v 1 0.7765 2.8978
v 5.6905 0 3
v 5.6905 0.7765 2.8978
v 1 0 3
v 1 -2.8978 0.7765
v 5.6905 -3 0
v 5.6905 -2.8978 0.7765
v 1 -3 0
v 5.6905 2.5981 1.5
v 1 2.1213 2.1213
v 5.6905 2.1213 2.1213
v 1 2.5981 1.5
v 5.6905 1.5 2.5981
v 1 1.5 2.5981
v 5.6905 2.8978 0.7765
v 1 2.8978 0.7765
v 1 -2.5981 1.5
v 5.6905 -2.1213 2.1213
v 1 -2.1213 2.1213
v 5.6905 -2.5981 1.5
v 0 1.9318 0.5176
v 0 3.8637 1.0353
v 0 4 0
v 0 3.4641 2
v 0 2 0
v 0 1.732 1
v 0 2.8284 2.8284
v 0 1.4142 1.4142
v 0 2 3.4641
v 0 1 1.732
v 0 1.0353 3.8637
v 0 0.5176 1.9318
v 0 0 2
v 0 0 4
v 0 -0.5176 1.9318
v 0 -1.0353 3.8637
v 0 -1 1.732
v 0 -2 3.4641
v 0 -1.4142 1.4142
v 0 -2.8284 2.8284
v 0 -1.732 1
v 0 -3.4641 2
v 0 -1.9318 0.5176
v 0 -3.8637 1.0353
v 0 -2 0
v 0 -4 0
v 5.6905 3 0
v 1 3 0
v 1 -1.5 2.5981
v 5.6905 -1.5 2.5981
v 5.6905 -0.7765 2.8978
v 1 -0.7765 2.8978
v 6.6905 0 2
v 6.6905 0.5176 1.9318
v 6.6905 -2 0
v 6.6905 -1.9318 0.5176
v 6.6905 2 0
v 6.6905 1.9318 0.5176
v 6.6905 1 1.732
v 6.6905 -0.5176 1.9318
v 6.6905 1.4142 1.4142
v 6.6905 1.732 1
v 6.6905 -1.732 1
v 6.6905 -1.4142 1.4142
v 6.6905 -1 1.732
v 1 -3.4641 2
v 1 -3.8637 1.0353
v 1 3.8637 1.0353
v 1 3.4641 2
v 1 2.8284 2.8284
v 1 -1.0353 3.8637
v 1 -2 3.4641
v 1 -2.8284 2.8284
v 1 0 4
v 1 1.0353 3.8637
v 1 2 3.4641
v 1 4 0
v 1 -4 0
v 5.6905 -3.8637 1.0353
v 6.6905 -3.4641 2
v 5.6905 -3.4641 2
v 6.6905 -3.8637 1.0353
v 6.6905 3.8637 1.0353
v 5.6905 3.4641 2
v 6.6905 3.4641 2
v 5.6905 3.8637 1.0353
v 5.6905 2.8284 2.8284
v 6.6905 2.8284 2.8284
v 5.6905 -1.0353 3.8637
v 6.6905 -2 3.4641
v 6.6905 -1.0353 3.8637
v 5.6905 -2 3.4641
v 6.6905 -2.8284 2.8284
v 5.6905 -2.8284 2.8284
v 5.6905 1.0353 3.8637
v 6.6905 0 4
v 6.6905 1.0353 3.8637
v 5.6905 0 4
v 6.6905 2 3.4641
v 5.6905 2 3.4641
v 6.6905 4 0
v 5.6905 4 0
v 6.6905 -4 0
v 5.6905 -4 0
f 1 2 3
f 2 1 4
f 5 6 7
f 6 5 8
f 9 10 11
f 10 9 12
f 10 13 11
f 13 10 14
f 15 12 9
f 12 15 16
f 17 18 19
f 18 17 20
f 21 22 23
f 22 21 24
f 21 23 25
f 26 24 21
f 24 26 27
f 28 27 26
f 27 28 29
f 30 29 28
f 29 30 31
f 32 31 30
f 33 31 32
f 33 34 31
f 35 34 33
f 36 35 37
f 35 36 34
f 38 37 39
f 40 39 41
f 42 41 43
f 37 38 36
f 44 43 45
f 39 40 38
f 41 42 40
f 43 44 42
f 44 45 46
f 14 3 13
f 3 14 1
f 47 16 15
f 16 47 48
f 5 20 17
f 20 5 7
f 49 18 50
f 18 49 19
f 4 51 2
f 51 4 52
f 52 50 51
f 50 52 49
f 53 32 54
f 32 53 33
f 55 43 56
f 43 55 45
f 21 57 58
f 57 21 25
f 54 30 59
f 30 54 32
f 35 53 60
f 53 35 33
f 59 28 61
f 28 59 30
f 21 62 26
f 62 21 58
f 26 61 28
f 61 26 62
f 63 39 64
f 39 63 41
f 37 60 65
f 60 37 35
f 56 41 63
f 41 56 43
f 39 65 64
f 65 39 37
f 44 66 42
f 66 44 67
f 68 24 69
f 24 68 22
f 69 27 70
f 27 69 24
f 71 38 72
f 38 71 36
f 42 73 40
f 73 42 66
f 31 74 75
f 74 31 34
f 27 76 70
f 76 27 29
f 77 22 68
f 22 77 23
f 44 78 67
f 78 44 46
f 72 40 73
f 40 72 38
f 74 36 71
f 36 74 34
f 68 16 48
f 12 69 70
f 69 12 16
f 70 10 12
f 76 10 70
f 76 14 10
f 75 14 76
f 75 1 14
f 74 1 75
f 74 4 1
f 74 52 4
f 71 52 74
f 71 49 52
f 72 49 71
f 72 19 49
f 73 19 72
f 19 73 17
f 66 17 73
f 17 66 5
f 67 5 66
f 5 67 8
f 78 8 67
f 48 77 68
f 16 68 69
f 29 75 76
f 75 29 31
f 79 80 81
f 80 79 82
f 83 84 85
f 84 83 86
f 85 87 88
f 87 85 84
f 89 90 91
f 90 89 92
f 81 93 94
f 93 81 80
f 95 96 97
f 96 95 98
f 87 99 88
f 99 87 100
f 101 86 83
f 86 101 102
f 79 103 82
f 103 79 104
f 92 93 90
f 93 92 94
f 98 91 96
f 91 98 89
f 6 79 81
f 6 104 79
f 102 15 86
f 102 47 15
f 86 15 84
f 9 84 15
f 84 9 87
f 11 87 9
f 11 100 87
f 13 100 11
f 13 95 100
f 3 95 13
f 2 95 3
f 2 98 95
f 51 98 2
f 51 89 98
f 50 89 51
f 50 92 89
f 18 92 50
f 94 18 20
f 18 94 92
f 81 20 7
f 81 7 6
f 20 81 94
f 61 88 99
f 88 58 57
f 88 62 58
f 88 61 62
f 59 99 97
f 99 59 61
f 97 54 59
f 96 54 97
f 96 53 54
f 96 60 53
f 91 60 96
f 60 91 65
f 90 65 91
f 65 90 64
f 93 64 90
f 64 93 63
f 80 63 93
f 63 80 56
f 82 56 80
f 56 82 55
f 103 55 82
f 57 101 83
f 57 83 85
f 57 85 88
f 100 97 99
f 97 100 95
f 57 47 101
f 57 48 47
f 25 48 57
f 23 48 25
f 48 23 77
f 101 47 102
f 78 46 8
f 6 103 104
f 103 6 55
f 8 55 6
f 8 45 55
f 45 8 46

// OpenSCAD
// file: ../build_environments.scad
// build_environments.scad: modules to build level sections
//

module pool(diameter=10.0, wall_height=2.0, step_width=3.0, connections=[])
{
    difference() {
        union() {
        difference() {
            cylinder(h=0.5,r1=diameter+step_width,r2=diameter+step_width,$fn=48);
            translate([0,0,-0.1])
                cylinder(h=0.7,r1=diameter,r2=diameter,$fn=48);
        }
        difference() {
            cylinder(h=wall_height,r1=diameter+step_width+1.0,r2=diameter+step_width+1.0,$fn=48);
            translate([0,0,-0.1])
                cylinder(h=wall_height+0.2,r1=diameter+step_width,r2=diameter+step_width,$fn=48);
        }
        }
    
        for (c = connections)
        {
            rotate([0,90,0]) {
                angle = atan2(c[1],c[0]);
                rotate([-angle,0,0]) {
                    cylinder(h=diameter+5.0,r1=c[2],r2=c[2],$fn=48);
                }
            }
        }
    }
}

module straight(length=10.0, width=2.0, dy1=0.0, dy2=0.0, dz=0.0)
{
    dims = [0, 0, 0, 0, 0, (dz/length)];
    matrix = [
        [ 1, dims[0], dims[1], 0 ],
        [ dims[2], 1, dims[4], 0 ],
        [ dims[5], dims[3], 1, 0 ],
        [ 0, 0, 0, 1 ]
    ];
    multmatrix(matrix)
    difference() {
        translate([dy1,0,0])
        union() {
            rotate([0,90,0]) {
                difference() {
                    cylinder(h=(length-dy1-dy2),r1=width+1.0,r2=width+1.0,$fn=24);
                    translate([0,0,-0.1])
                        cylinder(h=(length-dy1-dy2+0.2),r1=width,r2=width,$fn=24);
                }
                difference() {
                    cylinder(h=1.0,r1=width+2.0,r2=width+2.0,$fn=24);
                    translate([0,0,-0.1])
                        cylinder(h=1.2,r1=width,r2=width,$fn=24);
                }
                translate([0,0,(length-dy1-dy2)-1.0]) {
                    difference() {
                        cylinder(h=1.0,r1=width+2.0,r2=width+2.0,$fn=24);
                        translate([0,0,-0.1])
                            cylinder(h=1.2,r1=width,r2=width,$fn=24);
                    }
                }
            }
        }
        translate([0,0,-(2*width+4.0)/2])
            cube([3*length,3*length,2*width+4.0],center=true);
    }
}

module curve(p0=[0,0], center=[0,0], dir=1, angle=0.0, width=2.0)
{
    radius = sqrt((p0[0]-center[0])*(p0[0]-center[0]) + (p0[1]-center[1])*(p0[1]-center[1]));
    if (dir == 0) {
        difference() {
            rotate([0,0,-90])
            difference() {
                rotate_extrude(angle = angle, convexity = 10, $fn=32)
                    translate([radius, 0, 0])
                        circle(r = width+1.0,$fn=24);
                rotate([0,0,-1.0])
                    rotate_extrude(angle = angle+2.0, convexity = 10, $fn=32)
                        translate([radius, 0, 0])
                            circle(r = width,$fn=24);
            }
            translate([0,0,-(2*width+4.0)/2])
                cube([5*radius,5*radius,2*width+4.0],center=true);
        }
    }
    else {
        difference() {
            rotate([0,0,90])
            difference() {
                rotate_extrude(angle = -angle, convexity = 10, $fn=32)
                    translate([radius, 0, 0])
                        circle(r = width+1.0,$fn=24);
                rotate([0,0,1.0])
                    rotate_extrude(angle = -angle-2.0, convexity = 10, $fn=32)
                        translate([radius, 0, 0])
                            circle(r = width,$fn=24);
            }
            translate([0,0,-(2*width+4.0)/2])
                cube([5*radius,5*radius,2*width+4.0],center=true);
        }
    }

}

// test pool
//pool(diameter=12.0000, wall_height=3.0000, step_width=3.0000, connections=[[0.0000,-26.0000,2.0000], [23.6074,0.0000,2.0000]]);

// test straight, slope
//straight(length=26.0000, width=2.0000, dy1=11.8322, dy2=6.7082, dz=0.0000);
//straight(length=29.1549, width=12.0000, dy1=0.0000, dy2=0.0000, dz=-15.0000);

// test curve
//curve(p0=[23.6074, 0.0000], center=[23.6074, 5.0000], dir=0, angle=60.1011, width=2.0000);
//curve(p0=[33.6426, 12.4219], center=[37.9771, 9.9295], dir=1, angle=120.4627, width=2.0000);
// main file
use <../build_environments.scad>;
straight(length=12.3474, width=2.0000, dy1=0.0000, dy2=5.6569, dz=0.0000);
